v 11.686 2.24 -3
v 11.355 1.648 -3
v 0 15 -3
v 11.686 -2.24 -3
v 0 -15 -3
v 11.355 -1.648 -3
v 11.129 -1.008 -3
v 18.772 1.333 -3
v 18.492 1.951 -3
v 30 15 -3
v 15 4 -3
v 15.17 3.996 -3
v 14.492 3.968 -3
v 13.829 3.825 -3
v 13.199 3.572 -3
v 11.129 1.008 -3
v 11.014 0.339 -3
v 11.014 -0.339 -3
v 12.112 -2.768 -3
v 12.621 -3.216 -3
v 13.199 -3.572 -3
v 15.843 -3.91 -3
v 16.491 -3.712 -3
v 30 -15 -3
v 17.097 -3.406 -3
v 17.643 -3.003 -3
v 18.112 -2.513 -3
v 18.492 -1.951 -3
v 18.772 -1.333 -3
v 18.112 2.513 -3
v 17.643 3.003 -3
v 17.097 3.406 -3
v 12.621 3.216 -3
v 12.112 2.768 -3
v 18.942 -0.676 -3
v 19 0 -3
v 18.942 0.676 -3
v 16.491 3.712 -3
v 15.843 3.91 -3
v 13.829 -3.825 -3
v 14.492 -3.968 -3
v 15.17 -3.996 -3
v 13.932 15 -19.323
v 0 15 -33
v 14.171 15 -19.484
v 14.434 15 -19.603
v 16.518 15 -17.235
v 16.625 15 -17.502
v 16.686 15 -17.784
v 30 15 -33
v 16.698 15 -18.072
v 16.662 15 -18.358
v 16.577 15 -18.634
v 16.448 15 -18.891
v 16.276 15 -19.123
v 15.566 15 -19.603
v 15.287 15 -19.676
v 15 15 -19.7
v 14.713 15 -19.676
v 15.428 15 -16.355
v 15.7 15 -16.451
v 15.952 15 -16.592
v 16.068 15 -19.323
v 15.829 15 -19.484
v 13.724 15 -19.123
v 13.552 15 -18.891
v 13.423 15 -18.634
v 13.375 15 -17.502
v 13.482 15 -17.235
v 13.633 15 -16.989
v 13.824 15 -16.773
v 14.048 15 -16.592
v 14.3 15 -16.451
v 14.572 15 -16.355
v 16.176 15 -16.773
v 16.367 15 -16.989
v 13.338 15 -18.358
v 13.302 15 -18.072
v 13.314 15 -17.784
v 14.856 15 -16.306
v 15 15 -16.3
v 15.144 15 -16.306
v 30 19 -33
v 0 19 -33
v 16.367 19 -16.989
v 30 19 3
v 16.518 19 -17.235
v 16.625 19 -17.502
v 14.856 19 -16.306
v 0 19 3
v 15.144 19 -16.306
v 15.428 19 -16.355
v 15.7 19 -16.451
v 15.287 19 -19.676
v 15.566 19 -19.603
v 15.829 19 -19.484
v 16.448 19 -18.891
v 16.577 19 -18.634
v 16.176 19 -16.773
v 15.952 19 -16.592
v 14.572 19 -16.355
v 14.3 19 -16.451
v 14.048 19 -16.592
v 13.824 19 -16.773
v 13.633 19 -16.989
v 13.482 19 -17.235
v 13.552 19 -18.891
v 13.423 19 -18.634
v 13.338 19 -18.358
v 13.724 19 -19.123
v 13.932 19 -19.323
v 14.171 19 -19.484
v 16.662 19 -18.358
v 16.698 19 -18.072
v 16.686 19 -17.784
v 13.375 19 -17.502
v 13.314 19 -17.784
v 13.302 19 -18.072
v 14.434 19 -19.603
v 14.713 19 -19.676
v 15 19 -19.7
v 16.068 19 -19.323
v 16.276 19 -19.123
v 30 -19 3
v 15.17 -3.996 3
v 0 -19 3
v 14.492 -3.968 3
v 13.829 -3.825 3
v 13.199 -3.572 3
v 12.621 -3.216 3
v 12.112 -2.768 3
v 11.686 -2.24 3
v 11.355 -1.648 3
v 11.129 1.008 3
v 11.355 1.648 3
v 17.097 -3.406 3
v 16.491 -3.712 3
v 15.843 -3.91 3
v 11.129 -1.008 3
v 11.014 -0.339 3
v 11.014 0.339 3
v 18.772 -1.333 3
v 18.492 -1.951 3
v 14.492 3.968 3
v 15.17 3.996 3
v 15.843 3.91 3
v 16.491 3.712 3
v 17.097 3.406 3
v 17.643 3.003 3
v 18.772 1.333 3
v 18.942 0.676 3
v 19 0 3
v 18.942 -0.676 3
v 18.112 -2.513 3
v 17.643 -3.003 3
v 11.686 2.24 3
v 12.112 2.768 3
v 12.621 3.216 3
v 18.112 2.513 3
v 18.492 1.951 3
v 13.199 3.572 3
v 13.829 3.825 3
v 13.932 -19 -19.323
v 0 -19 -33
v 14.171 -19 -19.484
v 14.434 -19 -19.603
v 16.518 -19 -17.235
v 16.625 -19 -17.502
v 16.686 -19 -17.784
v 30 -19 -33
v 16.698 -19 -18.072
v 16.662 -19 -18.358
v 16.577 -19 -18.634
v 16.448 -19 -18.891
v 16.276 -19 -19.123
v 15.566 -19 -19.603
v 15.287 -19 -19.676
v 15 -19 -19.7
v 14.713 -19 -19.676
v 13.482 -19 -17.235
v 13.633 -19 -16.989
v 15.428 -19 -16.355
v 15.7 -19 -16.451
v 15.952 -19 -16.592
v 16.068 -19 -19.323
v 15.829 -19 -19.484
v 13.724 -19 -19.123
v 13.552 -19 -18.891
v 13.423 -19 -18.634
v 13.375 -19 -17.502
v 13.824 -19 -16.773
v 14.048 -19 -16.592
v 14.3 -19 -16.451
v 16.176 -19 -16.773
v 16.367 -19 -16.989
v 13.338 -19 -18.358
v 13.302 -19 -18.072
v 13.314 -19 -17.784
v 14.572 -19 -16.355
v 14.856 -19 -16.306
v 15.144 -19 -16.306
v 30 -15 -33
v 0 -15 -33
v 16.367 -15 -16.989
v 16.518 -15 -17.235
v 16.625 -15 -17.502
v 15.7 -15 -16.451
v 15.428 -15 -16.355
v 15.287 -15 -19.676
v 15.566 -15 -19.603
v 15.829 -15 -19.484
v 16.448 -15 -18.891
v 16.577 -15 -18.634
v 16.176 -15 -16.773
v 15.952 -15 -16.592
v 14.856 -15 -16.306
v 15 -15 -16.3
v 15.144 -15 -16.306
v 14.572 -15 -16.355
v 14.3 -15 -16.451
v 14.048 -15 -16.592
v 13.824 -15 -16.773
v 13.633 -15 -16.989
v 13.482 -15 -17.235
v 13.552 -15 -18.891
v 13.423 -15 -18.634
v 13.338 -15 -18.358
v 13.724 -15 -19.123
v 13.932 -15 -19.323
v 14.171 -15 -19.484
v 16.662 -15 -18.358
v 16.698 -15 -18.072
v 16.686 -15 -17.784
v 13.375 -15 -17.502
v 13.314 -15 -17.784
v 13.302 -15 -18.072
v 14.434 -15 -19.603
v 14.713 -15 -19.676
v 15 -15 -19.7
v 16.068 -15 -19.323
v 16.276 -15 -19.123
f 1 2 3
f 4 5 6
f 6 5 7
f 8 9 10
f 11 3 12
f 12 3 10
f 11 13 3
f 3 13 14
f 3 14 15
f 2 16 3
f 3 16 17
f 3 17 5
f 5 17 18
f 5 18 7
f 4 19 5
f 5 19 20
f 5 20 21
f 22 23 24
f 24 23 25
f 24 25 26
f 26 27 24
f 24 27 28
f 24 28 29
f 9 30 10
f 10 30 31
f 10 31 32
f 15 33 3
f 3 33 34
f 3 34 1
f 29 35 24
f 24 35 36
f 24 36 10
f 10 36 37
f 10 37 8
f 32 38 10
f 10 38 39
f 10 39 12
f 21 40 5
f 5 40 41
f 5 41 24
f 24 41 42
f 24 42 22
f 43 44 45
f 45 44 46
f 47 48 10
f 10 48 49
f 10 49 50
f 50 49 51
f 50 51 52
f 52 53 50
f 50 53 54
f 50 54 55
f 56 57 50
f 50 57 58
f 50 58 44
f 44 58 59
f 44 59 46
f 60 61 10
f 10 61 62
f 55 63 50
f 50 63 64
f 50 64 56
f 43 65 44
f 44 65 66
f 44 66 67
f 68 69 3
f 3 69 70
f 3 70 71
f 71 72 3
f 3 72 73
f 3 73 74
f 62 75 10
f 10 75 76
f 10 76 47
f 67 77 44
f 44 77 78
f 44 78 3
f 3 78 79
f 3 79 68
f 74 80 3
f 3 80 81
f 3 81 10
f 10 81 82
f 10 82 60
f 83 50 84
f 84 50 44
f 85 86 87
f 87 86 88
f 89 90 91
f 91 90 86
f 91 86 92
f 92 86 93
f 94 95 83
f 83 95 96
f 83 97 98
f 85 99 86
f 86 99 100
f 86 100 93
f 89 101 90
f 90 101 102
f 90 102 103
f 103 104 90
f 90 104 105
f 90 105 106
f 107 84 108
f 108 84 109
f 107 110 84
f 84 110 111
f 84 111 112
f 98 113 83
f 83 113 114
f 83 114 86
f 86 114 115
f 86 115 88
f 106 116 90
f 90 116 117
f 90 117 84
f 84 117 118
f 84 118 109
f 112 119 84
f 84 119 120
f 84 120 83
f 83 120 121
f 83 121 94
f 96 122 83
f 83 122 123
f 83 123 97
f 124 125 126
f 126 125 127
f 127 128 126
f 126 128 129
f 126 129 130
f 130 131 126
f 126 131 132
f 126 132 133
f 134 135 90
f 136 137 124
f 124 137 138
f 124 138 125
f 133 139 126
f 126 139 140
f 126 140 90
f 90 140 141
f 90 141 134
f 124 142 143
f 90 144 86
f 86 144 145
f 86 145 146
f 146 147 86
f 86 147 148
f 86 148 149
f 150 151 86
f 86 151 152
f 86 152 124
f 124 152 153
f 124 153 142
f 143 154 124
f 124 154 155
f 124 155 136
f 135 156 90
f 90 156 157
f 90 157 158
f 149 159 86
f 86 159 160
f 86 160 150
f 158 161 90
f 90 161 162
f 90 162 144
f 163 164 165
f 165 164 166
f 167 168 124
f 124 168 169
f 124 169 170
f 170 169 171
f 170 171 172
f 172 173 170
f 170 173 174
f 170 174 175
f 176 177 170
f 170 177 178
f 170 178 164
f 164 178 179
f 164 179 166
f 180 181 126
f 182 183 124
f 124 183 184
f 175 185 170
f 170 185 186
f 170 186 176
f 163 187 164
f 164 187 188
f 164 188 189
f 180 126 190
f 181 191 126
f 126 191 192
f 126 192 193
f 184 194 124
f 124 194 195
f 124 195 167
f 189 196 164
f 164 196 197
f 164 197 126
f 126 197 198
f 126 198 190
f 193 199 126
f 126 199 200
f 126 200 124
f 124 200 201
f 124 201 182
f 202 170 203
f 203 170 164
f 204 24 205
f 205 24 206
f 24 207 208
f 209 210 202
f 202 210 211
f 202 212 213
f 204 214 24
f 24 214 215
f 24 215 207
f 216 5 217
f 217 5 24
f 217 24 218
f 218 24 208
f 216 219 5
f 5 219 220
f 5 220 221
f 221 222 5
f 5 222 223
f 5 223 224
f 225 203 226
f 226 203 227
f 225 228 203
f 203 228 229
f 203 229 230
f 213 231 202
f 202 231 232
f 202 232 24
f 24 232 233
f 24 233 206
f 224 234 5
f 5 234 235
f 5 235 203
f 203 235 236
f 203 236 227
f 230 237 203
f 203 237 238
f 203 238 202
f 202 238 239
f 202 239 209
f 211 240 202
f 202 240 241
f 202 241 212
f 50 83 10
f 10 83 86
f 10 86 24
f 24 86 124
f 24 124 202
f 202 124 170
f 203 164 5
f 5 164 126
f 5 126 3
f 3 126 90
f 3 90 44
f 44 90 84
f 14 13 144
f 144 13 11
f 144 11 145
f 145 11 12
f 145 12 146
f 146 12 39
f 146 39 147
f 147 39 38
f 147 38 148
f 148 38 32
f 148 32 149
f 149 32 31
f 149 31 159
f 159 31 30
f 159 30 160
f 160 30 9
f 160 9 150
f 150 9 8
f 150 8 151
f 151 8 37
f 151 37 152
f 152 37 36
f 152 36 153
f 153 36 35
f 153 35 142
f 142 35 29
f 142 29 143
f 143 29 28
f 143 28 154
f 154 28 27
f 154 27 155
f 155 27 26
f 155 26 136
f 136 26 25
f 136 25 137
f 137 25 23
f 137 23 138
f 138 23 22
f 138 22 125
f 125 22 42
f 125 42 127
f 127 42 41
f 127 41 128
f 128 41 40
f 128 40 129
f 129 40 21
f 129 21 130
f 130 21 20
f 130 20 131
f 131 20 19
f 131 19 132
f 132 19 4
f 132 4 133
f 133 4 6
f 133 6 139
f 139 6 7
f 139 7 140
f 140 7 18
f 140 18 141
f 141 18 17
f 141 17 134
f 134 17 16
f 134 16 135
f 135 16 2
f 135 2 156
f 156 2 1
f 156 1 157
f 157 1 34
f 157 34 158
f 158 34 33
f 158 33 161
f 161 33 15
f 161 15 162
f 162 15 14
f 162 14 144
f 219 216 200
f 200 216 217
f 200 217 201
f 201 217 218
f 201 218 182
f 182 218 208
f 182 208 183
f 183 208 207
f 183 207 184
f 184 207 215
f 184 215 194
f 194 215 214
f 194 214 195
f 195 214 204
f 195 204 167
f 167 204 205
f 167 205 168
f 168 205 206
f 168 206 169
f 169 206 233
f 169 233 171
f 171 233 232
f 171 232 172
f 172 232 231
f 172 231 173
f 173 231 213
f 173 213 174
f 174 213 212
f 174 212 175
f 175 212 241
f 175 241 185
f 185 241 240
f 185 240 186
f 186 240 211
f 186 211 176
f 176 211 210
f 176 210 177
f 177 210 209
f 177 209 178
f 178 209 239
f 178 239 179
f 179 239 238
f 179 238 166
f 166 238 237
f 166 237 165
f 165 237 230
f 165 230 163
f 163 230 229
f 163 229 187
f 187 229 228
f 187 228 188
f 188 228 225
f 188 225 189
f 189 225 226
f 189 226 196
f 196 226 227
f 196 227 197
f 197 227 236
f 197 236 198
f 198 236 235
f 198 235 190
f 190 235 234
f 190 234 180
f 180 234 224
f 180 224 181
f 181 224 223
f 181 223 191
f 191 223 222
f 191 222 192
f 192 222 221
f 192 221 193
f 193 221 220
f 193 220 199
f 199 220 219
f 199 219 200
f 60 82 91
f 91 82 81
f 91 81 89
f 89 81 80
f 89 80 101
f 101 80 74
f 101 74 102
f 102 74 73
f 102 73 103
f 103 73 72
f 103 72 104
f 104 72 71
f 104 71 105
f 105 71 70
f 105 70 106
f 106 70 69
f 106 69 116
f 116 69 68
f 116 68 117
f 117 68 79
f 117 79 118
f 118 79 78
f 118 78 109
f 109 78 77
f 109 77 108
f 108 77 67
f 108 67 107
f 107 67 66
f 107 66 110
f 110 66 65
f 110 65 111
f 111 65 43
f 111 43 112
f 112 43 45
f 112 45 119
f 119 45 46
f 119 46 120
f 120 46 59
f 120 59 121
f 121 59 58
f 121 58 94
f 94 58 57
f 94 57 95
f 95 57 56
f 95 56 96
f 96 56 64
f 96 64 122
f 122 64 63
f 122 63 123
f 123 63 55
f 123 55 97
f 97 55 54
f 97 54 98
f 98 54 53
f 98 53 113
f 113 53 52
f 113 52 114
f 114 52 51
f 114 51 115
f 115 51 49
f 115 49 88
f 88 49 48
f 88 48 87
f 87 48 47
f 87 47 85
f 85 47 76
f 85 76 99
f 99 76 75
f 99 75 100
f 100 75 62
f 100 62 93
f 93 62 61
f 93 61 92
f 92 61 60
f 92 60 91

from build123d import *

# Parameters (mm, degrees)
SKETCH2_W           = 6
SKETCH2_H           = 30
BOSS_EXTRUDE1_DEPTH = 30
SKETCH4_R           = 4
CUT_EXTRUDE2_DEPTH  = 30
SKETCH5_R           = 1.7
CUT_EXTRUDE3_DEPTH  = 39


with BuildPart() as part:
    # Sketch2 → Boss-Extrude1 (new body)
    with BuildSketch(Plane(origin=(0, 0, 0), x_dir=(0, 0, -1), z_dir=(1, 0, 0))):
        Rectangle(SKETCH2_W, SKETCH2_H)
        Polygon((-3, 19), (-3, 15), (3, 15), (33, 15), (33, 19), align=None)
        Polygon((3, -15), (-3, -15), (-3, -19), (33, -19), (33, -15), align=None)
    extrude(amount=BOSS_EXTRUDE1_DEPTH)

    # Sketch4 → Cut-Extrude2 (cut)
    with BuildSketch(Plane.XY.offset(3)):
        with Locations((15, 0)):
            Circle(SKETCH4_R)
    extrude(amount=-CUT_EXTRUDE2_DEPTH, mode=Mode.SUBTRACT)

    # Sketch5 → Cut-Extrude3 (cut, through all)
    with BuildSketch(Plane.XZ.offset(19)):
        with Locations((15, -18)):
            Circle(SKETCH5_R)
    extrude(amount=-CUT_EXTRUDE3_DEPTH, mode=Mode.SUBTRACT)


solid = part.part
